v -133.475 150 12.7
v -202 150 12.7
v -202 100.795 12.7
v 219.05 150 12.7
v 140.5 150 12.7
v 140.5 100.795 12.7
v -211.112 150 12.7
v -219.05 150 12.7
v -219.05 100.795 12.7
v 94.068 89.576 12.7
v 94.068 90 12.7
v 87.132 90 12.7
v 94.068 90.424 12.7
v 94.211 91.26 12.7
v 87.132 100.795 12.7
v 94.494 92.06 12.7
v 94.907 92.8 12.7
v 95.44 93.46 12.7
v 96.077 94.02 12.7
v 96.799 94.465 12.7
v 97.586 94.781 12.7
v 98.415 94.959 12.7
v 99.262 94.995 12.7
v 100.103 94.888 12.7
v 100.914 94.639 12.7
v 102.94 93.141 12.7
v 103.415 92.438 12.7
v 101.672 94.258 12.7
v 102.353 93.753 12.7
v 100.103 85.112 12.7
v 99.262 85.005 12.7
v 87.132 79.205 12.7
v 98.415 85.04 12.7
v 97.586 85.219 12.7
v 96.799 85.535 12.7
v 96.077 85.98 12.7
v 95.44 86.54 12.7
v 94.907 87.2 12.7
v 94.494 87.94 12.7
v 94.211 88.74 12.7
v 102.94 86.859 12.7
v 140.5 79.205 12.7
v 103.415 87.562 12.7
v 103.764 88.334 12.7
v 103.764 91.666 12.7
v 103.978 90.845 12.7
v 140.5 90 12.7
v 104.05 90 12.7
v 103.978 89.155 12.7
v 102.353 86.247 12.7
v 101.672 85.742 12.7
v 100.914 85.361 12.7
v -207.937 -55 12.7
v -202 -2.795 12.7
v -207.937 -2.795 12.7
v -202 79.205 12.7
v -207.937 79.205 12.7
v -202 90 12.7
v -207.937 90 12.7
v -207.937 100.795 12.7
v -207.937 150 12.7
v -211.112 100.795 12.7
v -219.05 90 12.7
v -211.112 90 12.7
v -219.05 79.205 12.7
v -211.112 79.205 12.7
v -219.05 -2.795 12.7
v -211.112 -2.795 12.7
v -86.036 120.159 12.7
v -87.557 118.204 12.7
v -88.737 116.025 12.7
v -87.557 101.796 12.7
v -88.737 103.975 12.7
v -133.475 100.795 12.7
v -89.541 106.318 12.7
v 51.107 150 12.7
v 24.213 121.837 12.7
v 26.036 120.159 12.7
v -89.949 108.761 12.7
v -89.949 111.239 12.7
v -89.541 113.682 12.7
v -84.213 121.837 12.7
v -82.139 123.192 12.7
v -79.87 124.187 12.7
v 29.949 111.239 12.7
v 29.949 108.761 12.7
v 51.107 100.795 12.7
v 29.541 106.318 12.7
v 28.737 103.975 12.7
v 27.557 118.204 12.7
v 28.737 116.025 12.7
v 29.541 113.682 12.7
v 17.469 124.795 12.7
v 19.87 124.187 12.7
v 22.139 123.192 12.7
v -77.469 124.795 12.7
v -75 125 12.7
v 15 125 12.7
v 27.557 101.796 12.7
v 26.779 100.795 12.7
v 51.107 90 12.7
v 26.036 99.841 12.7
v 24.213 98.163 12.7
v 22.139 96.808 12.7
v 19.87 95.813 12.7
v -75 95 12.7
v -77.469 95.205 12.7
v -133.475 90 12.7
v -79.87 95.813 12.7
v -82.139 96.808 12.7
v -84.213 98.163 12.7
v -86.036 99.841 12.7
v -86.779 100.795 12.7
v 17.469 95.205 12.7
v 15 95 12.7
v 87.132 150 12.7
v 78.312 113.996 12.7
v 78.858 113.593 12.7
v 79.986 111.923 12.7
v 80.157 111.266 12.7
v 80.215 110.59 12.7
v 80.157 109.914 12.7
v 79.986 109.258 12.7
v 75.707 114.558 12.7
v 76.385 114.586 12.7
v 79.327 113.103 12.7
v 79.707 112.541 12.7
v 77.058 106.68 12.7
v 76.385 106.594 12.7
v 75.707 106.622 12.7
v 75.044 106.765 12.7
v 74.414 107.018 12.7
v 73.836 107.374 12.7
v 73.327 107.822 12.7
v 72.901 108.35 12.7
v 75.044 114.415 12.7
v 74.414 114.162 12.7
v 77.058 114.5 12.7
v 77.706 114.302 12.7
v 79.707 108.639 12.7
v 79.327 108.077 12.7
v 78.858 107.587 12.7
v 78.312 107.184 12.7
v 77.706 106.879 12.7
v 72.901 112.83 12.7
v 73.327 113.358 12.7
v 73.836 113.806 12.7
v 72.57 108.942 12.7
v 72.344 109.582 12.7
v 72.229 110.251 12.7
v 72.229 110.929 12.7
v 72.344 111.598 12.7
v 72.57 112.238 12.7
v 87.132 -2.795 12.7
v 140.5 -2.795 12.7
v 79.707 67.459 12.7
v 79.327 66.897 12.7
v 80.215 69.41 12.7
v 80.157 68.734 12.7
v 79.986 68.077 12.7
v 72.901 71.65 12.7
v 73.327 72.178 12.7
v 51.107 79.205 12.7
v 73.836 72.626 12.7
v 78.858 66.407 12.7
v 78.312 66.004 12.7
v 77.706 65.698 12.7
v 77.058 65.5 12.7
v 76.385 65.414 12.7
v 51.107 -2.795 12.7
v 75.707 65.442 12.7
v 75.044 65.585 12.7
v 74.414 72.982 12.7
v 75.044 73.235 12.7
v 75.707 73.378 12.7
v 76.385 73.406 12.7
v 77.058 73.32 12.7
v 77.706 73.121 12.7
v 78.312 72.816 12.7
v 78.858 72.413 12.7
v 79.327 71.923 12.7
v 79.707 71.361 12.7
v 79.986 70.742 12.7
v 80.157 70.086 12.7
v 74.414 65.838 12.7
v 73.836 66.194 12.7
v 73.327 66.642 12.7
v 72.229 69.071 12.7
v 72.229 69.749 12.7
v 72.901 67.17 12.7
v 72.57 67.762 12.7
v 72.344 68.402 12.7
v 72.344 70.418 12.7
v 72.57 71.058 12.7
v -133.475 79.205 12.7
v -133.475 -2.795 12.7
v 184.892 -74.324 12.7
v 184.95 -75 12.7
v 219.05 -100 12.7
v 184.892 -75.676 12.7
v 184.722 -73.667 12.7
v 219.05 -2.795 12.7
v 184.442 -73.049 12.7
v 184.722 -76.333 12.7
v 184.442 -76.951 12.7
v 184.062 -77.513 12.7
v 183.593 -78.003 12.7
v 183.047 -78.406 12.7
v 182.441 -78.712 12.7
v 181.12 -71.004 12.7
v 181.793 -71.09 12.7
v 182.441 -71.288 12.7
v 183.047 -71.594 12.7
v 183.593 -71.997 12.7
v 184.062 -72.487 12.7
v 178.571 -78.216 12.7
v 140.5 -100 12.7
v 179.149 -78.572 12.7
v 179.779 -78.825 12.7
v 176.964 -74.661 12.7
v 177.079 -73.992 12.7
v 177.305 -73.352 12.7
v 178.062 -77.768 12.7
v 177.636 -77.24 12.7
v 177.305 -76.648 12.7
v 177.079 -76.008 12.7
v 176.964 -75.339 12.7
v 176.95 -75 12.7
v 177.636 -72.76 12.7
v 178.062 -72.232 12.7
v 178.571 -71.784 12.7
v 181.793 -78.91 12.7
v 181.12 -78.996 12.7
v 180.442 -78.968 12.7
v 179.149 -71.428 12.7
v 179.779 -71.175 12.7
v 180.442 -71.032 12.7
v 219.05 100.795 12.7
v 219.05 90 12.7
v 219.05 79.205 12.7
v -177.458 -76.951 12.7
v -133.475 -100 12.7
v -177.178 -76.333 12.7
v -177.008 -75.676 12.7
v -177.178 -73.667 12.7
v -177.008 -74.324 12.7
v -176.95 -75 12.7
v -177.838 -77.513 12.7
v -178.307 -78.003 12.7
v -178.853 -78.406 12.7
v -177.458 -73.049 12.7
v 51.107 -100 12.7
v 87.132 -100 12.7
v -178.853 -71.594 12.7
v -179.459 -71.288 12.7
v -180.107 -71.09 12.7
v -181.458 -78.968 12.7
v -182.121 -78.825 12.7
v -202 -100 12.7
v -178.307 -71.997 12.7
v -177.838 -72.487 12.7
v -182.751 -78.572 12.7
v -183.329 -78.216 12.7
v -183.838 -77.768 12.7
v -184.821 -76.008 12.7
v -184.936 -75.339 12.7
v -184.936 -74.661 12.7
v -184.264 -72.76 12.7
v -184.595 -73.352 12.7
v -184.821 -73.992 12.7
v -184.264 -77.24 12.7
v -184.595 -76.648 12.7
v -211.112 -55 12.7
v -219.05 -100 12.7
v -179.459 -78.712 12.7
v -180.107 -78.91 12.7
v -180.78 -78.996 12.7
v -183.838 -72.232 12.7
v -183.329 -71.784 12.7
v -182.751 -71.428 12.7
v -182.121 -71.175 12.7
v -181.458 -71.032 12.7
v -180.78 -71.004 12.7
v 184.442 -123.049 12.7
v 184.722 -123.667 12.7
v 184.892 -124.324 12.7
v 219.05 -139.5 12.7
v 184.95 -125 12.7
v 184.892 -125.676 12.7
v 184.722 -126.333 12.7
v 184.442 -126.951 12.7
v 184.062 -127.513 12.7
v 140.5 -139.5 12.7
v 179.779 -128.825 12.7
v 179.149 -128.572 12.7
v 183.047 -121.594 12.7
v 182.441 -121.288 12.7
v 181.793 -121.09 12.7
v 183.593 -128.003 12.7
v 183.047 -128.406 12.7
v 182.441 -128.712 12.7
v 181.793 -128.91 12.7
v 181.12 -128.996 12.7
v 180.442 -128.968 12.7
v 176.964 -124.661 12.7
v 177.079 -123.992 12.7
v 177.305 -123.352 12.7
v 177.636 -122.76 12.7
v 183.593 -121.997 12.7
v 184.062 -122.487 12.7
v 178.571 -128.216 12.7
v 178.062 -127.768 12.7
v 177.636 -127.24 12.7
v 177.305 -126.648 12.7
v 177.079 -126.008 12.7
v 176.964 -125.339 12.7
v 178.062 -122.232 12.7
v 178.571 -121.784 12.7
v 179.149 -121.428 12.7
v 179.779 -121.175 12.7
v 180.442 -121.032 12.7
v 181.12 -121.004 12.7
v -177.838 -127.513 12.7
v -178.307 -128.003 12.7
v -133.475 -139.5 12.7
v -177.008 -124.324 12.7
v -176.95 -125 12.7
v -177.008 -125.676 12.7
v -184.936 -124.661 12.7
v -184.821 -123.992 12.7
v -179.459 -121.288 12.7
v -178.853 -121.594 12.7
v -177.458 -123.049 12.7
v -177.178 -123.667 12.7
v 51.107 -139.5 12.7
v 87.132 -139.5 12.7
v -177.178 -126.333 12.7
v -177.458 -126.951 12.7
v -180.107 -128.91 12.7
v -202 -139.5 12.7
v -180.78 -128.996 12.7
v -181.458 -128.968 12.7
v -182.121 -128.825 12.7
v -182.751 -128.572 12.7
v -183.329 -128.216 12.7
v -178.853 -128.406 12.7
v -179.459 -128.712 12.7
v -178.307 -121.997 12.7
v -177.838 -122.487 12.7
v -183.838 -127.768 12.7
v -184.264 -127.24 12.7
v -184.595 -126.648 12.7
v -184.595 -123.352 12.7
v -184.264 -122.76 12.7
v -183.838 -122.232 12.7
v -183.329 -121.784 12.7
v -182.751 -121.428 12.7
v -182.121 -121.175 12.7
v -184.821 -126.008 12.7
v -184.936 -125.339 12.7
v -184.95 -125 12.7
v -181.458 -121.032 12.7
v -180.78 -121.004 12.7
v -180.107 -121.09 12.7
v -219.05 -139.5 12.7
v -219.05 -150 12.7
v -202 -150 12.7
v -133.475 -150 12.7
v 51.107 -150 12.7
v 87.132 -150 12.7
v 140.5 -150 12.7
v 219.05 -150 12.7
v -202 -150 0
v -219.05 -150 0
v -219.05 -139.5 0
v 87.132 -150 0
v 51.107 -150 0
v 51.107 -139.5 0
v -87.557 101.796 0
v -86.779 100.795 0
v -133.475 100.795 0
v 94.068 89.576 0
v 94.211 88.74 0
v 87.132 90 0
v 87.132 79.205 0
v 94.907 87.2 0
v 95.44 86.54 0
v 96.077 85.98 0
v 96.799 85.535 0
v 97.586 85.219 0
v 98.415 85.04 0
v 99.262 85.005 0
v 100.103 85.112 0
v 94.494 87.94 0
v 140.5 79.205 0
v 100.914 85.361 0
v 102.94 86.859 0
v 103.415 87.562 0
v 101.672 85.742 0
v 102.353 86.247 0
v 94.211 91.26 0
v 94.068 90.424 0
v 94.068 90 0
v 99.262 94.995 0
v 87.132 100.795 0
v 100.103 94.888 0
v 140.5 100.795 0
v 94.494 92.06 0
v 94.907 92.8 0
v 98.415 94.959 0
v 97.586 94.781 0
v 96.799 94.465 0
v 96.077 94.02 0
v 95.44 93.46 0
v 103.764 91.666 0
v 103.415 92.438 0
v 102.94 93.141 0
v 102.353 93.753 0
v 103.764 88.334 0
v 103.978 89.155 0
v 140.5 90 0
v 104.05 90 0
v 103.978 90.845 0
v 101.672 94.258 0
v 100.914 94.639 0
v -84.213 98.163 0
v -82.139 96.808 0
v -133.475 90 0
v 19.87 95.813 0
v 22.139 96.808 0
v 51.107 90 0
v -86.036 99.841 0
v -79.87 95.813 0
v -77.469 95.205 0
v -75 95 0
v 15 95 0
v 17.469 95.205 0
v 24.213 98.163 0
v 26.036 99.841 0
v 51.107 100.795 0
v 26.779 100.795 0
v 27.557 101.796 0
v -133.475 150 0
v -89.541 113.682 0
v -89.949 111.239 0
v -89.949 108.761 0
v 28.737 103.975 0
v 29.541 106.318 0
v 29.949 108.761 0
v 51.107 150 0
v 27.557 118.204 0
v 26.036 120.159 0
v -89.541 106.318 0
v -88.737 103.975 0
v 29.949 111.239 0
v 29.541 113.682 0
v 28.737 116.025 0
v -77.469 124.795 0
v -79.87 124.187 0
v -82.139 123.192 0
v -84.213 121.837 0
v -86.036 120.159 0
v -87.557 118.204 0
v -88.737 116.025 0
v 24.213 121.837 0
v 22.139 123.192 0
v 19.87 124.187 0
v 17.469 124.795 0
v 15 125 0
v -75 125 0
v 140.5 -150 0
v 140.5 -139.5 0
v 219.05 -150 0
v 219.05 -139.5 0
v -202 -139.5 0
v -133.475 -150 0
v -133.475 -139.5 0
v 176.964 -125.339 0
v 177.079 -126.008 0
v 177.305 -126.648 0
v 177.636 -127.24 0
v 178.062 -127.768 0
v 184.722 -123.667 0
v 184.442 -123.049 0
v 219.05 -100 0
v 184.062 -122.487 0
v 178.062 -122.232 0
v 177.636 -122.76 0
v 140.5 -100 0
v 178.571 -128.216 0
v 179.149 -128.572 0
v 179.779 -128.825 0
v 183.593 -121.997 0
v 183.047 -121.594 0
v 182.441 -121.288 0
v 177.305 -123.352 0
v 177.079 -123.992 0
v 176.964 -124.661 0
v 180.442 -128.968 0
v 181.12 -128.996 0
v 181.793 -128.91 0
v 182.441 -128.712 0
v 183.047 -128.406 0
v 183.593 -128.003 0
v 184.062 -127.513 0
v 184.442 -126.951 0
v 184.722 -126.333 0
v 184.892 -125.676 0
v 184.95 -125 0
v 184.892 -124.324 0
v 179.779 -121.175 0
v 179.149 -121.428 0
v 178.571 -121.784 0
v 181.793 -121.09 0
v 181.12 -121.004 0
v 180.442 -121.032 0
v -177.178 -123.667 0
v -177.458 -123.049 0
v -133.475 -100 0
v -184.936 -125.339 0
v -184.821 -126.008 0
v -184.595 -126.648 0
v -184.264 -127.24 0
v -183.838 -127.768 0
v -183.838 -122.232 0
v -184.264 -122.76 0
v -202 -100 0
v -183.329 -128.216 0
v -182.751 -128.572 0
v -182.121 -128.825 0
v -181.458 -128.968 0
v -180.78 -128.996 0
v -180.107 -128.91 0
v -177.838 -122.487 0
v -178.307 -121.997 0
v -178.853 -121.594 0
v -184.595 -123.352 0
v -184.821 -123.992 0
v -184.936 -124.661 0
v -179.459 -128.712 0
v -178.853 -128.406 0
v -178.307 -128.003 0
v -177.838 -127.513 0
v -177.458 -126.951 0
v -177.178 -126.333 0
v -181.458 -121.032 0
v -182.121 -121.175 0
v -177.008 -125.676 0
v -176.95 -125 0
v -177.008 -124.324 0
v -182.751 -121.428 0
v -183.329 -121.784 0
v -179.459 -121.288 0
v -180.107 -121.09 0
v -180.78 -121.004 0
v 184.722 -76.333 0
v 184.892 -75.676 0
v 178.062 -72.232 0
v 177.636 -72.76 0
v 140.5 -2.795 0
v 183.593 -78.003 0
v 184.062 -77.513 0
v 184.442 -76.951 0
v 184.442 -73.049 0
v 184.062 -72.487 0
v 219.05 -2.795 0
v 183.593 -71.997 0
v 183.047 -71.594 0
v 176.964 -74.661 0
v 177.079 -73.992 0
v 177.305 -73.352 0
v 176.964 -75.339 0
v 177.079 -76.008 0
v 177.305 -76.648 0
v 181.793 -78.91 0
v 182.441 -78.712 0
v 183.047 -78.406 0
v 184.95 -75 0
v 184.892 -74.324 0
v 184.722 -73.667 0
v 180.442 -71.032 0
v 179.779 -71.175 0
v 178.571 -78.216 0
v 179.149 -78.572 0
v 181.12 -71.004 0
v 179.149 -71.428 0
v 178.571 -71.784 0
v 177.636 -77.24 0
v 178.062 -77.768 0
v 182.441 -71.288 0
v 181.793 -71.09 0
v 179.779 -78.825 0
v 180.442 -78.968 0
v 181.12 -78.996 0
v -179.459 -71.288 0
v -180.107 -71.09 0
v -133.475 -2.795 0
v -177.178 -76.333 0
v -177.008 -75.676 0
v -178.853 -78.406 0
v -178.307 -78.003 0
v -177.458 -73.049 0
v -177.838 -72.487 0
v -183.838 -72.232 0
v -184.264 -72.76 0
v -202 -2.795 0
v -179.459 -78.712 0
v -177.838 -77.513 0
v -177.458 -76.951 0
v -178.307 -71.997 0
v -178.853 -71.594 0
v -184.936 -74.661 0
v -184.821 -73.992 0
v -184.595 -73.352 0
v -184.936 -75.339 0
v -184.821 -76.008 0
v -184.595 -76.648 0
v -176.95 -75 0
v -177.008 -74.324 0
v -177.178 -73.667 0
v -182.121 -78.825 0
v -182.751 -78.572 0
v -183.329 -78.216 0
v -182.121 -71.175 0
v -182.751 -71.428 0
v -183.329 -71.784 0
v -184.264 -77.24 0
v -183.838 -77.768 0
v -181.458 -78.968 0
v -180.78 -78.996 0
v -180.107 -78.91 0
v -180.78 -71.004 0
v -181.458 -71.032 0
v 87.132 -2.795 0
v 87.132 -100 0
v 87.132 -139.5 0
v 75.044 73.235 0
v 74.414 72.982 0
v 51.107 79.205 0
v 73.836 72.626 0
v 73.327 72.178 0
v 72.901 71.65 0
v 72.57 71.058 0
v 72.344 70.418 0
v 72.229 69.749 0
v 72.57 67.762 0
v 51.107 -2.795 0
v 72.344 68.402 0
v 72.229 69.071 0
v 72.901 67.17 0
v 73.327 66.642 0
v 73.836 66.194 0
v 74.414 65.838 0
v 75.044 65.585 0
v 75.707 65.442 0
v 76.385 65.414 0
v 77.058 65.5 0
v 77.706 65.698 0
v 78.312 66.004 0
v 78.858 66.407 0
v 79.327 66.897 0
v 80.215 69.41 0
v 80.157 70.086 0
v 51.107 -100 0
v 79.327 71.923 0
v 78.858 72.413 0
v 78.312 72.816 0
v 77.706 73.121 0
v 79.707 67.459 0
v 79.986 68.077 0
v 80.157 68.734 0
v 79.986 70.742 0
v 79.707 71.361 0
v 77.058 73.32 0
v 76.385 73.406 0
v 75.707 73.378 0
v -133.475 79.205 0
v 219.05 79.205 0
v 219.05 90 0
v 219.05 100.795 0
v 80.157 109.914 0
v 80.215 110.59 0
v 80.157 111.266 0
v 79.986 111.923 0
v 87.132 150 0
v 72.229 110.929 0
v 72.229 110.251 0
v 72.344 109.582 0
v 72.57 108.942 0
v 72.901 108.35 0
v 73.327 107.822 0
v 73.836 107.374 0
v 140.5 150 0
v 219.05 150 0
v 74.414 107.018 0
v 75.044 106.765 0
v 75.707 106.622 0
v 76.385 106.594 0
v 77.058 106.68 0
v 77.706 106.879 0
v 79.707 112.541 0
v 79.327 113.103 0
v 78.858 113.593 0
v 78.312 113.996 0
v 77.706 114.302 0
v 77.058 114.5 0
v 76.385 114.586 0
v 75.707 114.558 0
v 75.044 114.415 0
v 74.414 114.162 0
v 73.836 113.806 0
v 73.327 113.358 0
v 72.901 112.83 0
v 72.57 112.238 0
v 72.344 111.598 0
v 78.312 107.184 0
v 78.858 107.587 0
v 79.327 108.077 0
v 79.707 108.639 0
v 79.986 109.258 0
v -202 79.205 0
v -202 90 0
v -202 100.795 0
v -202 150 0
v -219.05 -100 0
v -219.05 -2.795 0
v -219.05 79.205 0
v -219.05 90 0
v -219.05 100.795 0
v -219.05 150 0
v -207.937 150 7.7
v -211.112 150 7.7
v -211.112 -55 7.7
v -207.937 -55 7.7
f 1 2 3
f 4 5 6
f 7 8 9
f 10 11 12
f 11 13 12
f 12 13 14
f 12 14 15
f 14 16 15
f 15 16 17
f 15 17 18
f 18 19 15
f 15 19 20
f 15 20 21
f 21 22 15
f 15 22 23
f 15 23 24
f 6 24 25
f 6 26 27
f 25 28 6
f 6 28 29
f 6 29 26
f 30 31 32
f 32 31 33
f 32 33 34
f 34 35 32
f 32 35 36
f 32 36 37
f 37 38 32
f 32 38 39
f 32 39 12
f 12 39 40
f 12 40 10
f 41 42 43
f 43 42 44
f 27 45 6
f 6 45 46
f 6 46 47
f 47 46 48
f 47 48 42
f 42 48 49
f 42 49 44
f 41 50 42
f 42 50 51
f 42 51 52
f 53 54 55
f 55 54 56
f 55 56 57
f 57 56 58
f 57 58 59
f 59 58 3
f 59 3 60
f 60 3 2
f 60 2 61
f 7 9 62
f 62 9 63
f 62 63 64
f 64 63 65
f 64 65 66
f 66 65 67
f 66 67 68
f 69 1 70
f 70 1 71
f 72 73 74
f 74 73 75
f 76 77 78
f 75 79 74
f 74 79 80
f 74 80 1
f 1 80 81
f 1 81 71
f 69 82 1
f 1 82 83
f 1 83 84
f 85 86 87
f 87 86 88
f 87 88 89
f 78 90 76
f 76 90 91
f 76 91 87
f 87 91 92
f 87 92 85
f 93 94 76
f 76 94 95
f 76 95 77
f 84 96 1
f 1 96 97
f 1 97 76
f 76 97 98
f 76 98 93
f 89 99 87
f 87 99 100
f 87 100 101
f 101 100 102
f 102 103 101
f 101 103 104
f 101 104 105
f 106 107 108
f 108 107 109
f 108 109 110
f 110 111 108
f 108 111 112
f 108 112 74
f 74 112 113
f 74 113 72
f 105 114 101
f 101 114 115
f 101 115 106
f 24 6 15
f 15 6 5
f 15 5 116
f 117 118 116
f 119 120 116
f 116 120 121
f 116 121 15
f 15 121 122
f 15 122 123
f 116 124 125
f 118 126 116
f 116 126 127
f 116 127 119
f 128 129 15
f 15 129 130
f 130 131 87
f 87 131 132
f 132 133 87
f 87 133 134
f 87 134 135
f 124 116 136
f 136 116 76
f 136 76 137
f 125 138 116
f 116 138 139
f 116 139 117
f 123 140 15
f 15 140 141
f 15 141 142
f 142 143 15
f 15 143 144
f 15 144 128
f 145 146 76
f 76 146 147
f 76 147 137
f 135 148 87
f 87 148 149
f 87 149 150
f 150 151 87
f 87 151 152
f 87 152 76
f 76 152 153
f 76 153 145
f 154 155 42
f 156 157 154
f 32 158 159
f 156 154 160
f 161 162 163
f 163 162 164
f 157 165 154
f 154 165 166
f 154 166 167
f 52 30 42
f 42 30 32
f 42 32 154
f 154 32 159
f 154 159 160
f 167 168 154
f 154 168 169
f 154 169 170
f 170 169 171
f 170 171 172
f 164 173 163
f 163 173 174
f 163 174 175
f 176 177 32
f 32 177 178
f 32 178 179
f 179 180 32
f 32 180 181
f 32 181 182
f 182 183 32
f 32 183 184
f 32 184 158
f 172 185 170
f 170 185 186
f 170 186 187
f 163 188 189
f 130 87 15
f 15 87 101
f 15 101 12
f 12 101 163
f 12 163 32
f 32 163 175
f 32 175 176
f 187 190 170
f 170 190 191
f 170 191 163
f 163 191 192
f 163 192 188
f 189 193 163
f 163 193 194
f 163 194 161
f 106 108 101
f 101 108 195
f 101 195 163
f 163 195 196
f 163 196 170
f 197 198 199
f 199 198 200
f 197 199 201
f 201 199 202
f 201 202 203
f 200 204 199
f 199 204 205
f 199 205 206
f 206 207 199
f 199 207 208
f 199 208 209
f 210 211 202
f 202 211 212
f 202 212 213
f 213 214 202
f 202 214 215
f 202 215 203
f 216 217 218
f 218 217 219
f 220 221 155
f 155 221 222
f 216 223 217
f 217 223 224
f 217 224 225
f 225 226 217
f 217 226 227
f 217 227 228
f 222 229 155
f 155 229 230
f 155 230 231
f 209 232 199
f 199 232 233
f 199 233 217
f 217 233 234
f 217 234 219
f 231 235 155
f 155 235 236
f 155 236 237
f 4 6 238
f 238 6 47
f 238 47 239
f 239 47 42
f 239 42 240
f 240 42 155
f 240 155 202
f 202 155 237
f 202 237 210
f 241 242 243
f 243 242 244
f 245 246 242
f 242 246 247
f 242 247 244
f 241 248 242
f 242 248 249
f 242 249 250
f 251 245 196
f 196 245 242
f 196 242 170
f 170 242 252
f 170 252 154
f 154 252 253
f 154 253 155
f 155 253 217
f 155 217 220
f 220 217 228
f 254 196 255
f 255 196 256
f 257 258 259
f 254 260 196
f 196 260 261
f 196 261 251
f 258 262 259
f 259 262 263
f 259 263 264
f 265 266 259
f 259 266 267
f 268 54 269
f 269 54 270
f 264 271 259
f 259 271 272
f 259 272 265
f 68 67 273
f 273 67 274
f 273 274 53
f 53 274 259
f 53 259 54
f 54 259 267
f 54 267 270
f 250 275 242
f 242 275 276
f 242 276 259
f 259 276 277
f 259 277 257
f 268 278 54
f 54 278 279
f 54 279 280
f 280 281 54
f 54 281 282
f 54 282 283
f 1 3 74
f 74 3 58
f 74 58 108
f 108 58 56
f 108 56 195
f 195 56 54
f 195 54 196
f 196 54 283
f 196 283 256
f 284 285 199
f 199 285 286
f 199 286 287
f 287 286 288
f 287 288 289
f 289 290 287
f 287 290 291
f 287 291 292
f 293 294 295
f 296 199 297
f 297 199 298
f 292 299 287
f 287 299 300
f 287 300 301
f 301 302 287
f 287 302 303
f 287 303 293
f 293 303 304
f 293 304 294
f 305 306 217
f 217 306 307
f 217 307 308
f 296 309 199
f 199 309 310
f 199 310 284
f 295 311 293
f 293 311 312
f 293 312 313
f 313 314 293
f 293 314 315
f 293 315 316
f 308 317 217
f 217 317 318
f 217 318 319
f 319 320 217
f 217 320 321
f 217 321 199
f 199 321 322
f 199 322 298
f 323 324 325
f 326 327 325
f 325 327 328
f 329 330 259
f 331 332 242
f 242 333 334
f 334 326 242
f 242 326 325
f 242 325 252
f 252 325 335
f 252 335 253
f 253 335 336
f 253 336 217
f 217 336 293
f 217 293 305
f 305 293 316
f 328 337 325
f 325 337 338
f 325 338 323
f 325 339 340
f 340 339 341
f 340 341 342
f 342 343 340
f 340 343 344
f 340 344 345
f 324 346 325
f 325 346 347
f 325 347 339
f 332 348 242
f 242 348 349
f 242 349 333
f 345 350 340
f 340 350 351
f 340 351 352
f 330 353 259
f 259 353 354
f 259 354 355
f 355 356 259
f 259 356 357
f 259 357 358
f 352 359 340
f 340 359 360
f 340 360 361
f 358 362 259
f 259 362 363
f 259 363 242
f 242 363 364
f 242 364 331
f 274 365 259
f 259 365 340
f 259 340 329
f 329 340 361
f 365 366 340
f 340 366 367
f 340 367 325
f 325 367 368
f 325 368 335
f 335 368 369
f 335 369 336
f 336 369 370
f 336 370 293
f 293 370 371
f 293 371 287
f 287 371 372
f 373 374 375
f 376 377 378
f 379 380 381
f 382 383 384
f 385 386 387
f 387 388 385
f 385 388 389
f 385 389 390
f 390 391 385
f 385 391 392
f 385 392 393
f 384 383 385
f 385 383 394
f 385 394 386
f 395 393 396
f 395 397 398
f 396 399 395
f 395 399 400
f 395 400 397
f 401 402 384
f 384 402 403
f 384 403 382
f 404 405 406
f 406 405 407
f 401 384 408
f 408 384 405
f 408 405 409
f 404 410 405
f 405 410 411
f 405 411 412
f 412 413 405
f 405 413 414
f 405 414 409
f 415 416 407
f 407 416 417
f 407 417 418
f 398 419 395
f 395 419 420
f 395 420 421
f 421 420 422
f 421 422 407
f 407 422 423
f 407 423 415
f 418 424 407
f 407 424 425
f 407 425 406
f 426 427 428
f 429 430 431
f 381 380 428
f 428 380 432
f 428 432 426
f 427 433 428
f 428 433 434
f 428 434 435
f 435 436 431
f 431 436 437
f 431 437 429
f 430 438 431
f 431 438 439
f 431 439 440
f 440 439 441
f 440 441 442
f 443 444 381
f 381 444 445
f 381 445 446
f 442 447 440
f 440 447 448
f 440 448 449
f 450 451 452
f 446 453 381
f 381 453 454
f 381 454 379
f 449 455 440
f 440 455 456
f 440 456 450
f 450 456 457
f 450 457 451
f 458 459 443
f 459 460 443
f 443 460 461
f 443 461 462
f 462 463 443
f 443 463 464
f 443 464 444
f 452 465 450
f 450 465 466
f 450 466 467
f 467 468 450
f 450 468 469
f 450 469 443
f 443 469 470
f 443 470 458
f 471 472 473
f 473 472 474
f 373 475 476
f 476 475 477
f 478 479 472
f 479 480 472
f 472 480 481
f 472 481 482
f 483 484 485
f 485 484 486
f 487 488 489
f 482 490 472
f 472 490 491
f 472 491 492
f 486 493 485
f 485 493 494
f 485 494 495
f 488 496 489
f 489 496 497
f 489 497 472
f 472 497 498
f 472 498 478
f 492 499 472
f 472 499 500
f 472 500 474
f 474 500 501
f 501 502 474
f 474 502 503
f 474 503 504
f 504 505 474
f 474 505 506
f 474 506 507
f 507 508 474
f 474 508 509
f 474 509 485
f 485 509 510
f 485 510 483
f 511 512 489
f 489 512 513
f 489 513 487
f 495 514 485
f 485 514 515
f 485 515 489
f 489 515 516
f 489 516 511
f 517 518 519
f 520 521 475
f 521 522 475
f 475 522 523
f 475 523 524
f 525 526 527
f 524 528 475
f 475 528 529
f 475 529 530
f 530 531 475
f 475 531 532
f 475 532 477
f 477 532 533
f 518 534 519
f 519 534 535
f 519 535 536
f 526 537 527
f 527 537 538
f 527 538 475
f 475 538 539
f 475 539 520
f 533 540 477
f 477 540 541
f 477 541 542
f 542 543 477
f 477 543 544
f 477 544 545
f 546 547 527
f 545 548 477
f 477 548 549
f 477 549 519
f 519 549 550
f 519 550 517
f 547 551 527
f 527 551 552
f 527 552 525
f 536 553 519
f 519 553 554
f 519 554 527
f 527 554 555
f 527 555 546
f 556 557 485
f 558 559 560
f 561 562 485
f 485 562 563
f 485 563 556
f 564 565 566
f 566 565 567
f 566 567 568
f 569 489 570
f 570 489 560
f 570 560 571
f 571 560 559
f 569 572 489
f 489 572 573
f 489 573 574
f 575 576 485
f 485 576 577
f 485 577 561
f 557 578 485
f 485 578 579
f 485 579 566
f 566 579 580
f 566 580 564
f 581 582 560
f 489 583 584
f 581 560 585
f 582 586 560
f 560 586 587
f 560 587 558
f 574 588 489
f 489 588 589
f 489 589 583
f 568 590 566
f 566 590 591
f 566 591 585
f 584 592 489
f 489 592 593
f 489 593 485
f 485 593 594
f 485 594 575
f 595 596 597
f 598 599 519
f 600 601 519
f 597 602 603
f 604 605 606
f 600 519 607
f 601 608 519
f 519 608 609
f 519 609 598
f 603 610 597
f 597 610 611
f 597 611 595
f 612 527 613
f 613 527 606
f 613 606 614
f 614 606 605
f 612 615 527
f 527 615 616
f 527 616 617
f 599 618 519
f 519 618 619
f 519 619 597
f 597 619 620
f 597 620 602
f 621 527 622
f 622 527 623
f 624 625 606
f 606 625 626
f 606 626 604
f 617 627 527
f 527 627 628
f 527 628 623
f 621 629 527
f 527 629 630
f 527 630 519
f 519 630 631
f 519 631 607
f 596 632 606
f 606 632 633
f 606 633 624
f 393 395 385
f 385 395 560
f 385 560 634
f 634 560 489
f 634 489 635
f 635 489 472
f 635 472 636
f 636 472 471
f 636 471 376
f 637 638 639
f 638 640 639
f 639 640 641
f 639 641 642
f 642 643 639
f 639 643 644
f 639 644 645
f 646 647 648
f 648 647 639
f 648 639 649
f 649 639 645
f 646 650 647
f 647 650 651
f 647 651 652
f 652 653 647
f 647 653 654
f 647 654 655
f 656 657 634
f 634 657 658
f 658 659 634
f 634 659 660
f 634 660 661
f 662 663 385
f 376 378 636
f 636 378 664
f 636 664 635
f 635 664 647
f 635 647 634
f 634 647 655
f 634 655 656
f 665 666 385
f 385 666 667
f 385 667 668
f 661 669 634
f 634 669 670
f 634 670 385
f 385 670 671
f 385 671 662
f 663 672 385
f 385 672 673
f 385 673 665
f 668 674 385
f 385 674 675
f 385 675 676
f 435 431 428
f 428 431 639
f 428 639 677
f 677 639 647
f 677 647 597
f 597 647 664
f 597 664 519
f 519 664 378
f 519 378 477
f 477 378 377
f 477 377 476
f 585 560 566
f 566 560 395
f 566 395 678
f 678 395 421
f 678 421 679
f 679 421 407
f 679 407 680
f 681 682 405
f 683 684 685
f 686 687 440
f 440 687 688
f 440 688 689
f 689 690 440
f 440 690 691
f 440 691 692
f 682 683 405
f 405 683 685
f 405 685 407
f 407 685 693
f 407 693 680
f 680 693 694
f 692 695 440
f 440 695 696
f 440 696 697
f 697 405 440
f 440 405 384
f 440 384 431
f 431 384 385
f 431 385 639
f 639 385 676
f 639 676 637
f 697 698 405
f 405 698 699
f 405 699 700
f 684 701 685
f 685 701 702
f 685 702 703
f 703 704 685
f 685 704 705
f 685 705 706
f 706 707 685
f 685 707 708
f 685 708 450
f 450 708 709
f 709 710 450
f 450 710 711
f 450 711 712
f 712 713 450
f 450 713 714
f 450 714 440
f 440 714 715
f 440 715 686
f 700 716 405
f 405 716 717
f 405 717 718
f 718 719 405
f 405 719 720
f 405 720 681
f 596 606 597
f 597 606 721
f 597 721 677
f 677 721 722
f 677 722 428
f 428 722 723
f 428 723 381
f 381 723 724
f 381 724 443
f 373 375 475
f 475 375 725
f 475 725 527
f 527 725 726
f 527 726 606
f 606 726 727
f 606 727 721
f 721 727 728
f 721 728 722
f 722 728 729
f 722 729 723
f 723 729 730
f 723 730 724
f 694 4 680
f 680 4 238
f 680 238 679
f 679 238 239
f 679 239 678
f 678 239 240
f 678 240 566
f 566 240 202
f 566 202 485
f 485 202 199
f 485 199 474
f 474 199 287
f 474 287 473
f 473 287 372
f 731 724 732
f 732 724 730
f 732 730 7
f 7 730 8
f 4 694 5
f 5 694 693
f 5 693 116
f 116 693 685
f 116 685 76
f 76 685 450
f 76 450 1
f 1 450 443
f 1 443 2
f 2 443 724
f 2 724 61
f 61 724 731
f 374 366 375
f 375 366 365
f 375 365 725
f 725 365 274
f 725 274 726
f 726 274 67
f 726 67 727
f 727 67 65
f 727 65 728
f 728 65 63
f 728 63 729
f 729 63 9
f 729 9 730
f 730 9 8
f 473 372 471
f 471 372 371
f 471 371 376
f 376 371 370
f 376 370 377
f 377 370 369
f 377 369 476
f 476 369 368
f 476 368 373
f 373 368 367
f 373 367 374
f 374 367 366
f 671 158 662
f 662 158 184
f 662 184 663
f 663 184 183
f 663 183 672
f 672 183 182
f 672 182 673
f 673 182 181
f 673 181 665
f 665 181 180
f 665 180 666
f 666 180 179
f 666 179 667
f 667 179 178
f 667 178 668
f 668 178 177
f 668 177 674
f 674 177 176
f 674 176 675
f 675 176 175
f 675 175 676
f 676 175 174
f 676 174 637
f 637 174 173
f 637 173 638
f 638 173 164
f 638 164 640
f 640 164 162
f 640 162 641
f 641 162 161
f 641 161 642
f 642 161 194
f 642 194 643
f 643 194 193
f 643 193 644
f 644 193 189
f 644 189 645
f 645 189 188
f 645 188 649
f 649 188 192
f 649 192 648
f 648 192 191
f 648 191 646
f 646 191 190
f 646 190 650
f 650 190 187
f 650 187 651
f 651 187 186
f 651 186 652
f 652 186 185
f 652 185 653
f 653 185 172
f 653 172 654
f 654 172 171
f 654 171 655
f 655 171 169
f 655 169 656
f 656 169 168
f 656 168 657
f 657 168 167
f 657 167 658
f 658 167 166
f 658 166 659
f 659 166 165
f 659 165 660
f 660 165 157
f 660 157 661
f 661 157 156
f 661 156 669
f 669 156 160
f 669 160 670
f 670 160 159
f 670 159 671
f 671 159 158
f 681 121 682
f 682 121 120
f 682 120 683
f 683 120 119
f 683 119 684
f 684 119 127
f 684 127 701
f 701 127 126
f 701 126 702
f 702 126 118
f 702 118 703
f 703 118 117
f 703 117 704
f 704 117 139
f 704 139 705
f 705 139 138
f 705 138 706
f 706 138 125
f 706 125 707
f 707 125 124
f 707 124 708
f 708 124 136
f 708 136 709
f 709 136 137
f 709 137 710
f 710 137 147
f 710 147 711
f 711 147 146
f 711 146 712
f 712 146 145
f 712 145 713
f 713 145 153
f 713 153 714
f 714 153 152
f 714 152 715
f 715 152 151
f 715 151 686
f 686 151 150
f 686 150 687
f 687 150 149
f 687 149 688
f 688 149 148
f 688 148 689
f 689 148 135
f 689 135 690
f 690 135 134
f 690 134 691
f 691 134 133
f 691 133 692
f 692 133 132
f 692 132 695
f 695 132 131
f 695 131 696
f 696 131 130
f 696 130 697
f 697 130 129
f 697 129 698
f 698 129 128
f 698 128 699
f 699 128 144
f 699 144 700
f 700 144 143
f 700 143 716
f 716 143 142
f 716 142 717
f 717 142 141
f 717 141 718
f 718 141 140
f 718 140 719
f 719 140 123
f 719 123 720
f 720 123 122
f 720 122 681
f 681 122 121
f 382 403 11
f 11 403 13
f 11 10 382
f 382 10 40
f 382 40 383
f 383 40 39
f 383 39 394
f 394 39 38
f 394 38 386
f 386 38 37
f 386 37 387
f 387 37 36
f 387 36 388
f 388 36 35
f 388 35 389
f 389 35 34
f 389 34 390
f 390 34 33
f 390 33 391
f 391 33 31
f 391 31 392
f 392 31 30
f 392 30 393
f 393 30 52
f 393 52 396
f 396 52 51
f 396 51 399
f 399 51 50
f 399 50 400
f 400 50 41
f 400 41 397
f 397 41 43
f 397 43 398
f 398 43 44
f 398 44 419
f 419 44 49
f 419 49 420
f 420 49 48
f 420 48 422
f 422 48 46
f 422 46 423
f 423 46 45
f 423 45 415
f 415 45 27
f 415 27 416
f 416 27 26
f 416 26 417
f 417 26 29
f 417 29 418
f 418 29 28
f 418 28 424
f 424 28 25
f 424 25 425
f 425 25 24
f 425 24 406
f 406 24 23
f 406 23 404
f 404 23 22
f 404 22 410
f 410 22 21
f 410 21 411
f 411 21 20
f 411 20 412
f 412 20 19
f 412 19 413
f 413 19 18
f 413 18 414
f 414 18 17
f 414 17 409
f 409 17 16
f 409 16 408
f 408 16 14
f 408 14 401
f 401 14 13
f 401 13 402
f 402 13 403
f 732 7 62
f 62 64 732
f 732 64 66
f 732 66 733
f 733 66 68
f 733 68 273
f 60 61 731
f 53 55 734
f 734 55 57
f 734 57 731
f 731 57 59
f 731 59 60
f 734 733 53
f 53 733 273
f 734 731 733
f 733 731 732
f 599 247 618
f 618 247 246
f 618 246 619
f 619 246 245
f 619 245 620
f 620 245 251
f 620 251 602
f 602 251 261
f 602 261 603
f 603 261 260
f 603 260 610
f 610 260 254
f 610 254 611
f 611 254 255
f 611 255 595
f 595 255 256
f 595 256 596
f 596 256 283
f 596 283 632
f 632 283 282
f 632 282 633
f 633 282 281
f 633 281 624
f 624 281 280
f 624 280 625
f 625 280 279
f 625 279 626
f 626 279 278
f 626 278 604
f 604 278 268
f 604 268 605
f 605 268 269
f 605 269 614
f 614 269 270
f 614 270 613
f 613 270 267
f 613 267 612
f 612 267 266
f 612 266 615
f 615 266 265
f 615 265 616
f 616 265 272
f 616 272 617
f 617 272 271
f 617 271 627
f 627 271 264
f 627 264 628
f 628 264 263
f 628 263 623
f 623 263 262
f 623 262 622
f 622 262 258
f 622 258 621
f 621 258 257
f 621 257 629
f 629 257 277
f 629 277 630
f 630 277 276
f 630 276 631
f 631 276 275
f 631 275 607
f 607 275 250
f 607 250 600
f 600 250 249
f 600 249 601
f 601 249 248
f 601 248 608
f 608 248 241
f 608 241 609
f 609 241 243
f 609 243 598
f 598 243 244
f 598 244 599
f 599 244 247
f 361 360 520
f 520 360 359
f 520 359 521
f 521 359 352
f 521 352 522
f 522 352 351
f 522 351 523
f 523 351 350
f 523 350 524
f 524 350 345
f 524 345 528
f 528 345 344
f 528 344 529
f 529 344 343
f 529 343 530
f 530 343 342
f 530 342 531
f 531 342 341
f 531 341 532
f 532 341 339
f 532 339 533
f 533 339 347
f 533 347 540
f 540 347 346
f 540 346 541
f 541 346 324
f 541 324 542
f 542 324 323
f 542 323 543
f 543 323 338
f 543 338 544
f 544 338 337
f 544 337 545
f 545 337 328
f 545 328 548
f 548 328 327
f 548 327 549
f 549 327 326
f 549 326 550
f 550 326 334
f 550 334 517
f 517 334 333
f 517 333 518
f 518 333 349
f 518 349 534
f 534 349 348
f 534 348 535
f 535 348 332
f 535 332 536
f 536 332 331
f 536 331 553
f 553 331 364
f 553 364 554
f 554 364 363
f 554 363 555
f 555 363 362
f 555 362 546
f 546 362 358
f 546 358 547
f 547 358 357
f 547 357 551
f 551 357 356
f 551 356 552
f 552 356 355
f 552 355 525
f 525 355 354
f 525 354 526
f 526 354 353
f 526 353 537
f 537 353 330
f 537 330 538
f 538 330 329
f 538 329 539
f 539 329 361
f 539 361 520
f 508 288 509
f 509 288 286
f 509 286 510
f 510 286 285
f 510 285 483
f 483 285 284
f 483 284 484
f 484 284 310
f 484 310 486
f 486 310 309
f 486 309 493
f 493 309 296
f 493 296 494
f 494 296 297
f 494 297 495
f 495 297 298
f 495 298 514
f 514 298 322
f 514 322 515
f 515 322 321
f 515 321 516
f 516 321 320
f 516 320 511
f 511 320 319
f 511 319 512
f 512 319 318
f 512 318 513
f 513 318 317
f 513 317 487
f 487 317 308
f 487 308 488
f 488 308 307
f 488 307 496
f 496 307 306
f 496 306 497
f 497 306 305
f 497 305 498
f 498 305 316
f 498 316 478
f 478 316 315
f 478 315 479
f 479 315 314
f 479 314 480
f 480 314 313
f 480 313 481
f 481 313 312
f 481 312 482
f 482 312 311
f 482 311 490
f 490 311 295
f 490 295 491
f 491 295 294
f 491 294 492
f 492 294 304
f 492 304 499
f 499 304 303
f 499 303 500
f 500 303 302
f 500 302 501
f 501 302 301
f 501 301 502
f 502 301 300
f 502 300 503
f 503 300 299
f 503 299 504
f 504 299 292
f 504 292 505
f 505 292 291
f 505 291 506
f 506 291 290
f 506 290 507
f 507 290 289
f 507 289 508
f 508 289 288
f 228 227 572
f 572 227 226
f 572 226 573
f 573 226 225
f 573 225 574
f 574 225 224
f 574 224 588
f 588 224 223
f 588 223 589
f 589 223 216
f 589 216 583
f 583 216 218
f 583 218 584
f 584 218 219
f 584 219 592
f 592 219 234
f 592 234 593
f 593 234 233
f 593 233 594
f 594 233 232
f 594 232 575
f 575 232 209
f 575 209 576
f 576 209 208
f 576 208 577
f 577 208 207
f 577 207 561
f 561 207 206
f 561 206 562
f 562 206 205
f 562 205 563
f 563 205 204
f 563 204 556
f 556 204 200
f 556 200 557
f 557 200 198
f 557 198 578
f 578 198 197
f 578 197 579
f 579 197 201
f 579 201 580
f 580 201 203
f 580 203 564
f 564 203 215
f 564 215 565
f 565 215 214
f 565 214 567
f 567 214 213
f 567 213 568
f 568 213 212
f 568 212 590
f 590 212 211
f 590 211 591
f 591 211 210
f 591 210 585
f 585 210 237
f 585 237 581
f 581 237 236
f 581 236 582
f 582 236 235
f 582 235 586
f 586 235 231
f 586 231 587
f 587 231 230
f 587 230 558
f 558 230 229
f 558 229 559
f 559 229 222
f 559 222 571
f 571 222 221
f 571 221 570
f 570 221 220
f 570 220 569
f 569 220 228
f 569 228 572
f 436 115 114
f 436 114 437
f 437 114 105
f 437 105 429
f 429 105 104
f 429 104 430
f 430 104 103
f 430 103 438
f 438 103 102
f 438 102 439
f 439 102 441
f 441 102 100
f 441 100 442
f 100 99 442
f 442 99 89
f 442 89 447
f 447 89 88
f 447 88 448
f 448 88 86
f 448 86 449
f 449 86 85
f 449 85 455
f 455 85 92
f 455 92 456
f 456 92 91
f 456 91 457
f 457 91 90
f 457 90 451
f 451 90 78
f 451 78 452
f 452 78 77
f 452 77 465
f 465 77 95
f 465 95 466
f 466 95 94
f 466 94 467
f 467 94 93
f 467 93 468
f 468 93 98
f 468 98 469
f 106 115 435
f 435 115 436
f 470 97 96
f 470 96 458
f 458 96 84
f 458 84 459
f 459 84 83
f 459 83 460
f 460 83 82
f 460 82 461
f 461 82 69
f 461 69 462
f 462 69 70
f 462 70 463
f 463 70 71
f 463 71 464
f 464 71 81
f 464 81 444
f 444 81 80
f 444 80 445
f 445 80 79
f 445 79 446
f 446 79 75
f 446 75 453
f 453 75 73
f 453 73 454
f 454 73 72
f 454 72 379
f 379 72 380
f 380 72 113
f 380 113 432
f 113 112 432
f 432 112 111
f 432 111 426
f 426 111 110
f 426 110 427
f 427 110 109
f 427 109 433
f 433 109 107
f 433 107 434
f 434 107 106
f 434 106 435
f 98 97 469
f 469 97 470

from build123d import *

# Parameters (mm, degrees)
SKETCH1_W           = 438.1
SKETCH1_H           = 300
BOSS_EXTRUDE1_DEPTH = 12.7
CUT_EXTRUDE1_REACH  = 267.79
SKETCH2_R           = 4
SKETCH2_R_2         = 5
SKETCH3_W           = 3.175
SKETCH3_H           = 205
CUT_EXTRUDE2_DEPTH  = 5
CUT_EXTRUDE3_REACH  = 267.79
SKETCH4_R           = 4
CUT_EXTRUDE4_REACH  = 267.79


with BuildPart() as part:
    # Sketch1 → Boss-Extrude1 (new body)
    with BuildSketch(Plane.XY):
        Rectangle(SKETCH1_W, SKETCH1_H)
    extrude(amount=BOSS_EXTRUDE1_DEPTH)

    # Sketch2 → Cut-Extrude1 (cut, up to next)
    with BuildSketch(Plane.XY.offset(12.7), mode=Mode.PRIVATE) as cut_extrude1_sk1:
        with Locations((76.214870385, 69.409934415)):
            Circle(SKETCH2_R)
    cut_extrude1_tool1 = extrude(cut_extrude1_sk1.sketch, amount=-CUT_EXTRUDE1_REACH, mode=Mode.PRIVATE) & part.part
    # Sketch2 → Cut-Extrude1 (cut, up to next)
    with BuildSketch(Plane.XY.offset(12.7), mode=Mode.PRIVATE) as cut_extrude1_sk2:
        with Locations((76.214870385, 110.590065585)):
            Circle(SKETCH2_R)
    cut_extrude1_tool2 = extrude(cut_extrude1_sk2.sketch, amount=-CUT_EXTRUDE1_REACH, mode=Mode.PRIVATE) & part.part
    # Sketch2 → Cut-Extrude1 (cut, up to next)
    with BuildSketch(Plane.XY.offset(12.7), mode=Mode.PRIVATE) as cut_extrude1_sk3:
        with Locations((99.05, 90)):
            Circle(SKETCH2_R_2)
    cut_extrude1_tool3 = extrude(cut_extrude1_sk3.sketch, amount=-CUT_EXTRUDE1_REACH, mode=Mode.PRIVATE) & part.part
    add(cut_extrude1_tool1.solids().sort_by_distance((76.21487, 69.409934, 12.7))[0], mode=Mode.SUBTRACT)
    add(cut_extrude1_tool2.solids().sort_by_distance((76.21487, 110.590066, 12.7))[0], mode=Mode.SUBTRACT)
    add(cut_extrude1_tool3.solids().sort_by_distance((99.05, 90, 12.7))[0], mode=Mode.SUBTRACT)

    # Sketch3 → Cut-Extrude2 (cut)
    with BuildSketch(Plane.XY.offset(12.7)):
        with Locations((-209.525, 47.5)):
            Rectangle(SKETCH3_W, SKETCH3_H)
    extrude(amount=-CUT_EXTRUDE2_DEPTH, mode=Mode.SUBTRACT)

    # Sketch4 → Cut-Extrude3 (cut, up to next)
    with BuildSketch(Plane.XY.offset(12.7), mode=Mode.PRIVATE) as cut_extrude3_sk1:
        with Locations((-180.95, -75)):
            Circle(SKETCH4_R)
    cut_extrude3_tool1 = extrude(cut_extrude3_sk1.sketch, amount=-CUT_EXTRUDE3_REACH, mode=Mode.PRIVATE) & part.part
    # Sketch4 → Cut-Extrude3 (cut, up to next)
    with BuildSketch(Plane.XY.offset(12.7), mode=Mode.PRIVATE) as cut_extrude3_sk2:
        with Locations((-180.95, -125)):
            Circle(SKETCH4_R)
    cut_extrude3_tool2 = extrude(cut_extrude3_sk2.sketch, amount=-CUT_EXTRUDE3_REACH, mode=Mode.PRIVATE) & part.part
    # Sketch4 → Cut-Extrude3 (cut, up to next)
    with BuildSketch(Plane.XY.offset(12.7), mode=Mode.PRIVATE) as cut_extrude3_sk3:
        with Locations((180.95, -125)):
            Circle(SKETCH4_R)
    cut_extrude3_tool3 = extrude(cut_extrude3_sk3.sketch, amount=-CUT_EXTRUDE3_REACH, mode=Mode.PRIVATE) & part.part
    # Sketch4 → Cut-Extrude3 (cut, up to next)
    with BuildSketch(Plane.XY.offset(12.7), mode=Mode.PRIVATE) as cut_extrude3_sk4:
        with Locations((180.95, -75)):
            Circle(SKETCH4_R)
    cut_extrude3_tool4 = extrude(cut_extrude3_sk4.sketch, amount=-CUT_EXTRUDE3_REACH, mode=Mode.PRIVATE) & part.part
    add(cut_extrude3_tool1.solids().sort_by_distance((-180.95, -75, 12.7))[0], mode=Mode.SUBTRACT)
    add(cut_extrude3_tool2.solids().sort_by_distance((-180.95, -125, 12.7))[0], mode=Mode.SUBTRACT)
    add(cut_extrude3_tool3.solids().sort_by_distance((180.95, -125, 12.7))[0], mode=Mode.SUBTRACT)
    add(cut_extrude3_tool4.solids().sort_by_distance((180.95, -75, 12.7))[0], mode=Mode.SUBTRACT)

    # Sketch5 → Cut-Extrude4 (cut, up to next)
    with BuildSketch(Plane.XY.offset(12.7), mode=Mode.PRIVATE) as cut_extrude4_sk1:
        with BuildLine():
            Line((15, 95), (-75, 95))
            ThreePointArc((-75, 95), (-90, 110), (-75, 125))
            Line((-75, 125), (15, 125))
            ThreePointArc((15, 125), (30, 110), (15, 95))
        make_face()
    cut_extrude4_tool1 = extrude(cut_extrude4_sk1.sketch, amount=-CUT_EXTRUDE4_REACH, mode=Mode.PRIVATE) & part.part
    add(cut_extrude4_tool1.solids().sort_by_distance((-30, 110, 12.7))[0], mode=Mode.SUBTRACT)


solid = part.part
